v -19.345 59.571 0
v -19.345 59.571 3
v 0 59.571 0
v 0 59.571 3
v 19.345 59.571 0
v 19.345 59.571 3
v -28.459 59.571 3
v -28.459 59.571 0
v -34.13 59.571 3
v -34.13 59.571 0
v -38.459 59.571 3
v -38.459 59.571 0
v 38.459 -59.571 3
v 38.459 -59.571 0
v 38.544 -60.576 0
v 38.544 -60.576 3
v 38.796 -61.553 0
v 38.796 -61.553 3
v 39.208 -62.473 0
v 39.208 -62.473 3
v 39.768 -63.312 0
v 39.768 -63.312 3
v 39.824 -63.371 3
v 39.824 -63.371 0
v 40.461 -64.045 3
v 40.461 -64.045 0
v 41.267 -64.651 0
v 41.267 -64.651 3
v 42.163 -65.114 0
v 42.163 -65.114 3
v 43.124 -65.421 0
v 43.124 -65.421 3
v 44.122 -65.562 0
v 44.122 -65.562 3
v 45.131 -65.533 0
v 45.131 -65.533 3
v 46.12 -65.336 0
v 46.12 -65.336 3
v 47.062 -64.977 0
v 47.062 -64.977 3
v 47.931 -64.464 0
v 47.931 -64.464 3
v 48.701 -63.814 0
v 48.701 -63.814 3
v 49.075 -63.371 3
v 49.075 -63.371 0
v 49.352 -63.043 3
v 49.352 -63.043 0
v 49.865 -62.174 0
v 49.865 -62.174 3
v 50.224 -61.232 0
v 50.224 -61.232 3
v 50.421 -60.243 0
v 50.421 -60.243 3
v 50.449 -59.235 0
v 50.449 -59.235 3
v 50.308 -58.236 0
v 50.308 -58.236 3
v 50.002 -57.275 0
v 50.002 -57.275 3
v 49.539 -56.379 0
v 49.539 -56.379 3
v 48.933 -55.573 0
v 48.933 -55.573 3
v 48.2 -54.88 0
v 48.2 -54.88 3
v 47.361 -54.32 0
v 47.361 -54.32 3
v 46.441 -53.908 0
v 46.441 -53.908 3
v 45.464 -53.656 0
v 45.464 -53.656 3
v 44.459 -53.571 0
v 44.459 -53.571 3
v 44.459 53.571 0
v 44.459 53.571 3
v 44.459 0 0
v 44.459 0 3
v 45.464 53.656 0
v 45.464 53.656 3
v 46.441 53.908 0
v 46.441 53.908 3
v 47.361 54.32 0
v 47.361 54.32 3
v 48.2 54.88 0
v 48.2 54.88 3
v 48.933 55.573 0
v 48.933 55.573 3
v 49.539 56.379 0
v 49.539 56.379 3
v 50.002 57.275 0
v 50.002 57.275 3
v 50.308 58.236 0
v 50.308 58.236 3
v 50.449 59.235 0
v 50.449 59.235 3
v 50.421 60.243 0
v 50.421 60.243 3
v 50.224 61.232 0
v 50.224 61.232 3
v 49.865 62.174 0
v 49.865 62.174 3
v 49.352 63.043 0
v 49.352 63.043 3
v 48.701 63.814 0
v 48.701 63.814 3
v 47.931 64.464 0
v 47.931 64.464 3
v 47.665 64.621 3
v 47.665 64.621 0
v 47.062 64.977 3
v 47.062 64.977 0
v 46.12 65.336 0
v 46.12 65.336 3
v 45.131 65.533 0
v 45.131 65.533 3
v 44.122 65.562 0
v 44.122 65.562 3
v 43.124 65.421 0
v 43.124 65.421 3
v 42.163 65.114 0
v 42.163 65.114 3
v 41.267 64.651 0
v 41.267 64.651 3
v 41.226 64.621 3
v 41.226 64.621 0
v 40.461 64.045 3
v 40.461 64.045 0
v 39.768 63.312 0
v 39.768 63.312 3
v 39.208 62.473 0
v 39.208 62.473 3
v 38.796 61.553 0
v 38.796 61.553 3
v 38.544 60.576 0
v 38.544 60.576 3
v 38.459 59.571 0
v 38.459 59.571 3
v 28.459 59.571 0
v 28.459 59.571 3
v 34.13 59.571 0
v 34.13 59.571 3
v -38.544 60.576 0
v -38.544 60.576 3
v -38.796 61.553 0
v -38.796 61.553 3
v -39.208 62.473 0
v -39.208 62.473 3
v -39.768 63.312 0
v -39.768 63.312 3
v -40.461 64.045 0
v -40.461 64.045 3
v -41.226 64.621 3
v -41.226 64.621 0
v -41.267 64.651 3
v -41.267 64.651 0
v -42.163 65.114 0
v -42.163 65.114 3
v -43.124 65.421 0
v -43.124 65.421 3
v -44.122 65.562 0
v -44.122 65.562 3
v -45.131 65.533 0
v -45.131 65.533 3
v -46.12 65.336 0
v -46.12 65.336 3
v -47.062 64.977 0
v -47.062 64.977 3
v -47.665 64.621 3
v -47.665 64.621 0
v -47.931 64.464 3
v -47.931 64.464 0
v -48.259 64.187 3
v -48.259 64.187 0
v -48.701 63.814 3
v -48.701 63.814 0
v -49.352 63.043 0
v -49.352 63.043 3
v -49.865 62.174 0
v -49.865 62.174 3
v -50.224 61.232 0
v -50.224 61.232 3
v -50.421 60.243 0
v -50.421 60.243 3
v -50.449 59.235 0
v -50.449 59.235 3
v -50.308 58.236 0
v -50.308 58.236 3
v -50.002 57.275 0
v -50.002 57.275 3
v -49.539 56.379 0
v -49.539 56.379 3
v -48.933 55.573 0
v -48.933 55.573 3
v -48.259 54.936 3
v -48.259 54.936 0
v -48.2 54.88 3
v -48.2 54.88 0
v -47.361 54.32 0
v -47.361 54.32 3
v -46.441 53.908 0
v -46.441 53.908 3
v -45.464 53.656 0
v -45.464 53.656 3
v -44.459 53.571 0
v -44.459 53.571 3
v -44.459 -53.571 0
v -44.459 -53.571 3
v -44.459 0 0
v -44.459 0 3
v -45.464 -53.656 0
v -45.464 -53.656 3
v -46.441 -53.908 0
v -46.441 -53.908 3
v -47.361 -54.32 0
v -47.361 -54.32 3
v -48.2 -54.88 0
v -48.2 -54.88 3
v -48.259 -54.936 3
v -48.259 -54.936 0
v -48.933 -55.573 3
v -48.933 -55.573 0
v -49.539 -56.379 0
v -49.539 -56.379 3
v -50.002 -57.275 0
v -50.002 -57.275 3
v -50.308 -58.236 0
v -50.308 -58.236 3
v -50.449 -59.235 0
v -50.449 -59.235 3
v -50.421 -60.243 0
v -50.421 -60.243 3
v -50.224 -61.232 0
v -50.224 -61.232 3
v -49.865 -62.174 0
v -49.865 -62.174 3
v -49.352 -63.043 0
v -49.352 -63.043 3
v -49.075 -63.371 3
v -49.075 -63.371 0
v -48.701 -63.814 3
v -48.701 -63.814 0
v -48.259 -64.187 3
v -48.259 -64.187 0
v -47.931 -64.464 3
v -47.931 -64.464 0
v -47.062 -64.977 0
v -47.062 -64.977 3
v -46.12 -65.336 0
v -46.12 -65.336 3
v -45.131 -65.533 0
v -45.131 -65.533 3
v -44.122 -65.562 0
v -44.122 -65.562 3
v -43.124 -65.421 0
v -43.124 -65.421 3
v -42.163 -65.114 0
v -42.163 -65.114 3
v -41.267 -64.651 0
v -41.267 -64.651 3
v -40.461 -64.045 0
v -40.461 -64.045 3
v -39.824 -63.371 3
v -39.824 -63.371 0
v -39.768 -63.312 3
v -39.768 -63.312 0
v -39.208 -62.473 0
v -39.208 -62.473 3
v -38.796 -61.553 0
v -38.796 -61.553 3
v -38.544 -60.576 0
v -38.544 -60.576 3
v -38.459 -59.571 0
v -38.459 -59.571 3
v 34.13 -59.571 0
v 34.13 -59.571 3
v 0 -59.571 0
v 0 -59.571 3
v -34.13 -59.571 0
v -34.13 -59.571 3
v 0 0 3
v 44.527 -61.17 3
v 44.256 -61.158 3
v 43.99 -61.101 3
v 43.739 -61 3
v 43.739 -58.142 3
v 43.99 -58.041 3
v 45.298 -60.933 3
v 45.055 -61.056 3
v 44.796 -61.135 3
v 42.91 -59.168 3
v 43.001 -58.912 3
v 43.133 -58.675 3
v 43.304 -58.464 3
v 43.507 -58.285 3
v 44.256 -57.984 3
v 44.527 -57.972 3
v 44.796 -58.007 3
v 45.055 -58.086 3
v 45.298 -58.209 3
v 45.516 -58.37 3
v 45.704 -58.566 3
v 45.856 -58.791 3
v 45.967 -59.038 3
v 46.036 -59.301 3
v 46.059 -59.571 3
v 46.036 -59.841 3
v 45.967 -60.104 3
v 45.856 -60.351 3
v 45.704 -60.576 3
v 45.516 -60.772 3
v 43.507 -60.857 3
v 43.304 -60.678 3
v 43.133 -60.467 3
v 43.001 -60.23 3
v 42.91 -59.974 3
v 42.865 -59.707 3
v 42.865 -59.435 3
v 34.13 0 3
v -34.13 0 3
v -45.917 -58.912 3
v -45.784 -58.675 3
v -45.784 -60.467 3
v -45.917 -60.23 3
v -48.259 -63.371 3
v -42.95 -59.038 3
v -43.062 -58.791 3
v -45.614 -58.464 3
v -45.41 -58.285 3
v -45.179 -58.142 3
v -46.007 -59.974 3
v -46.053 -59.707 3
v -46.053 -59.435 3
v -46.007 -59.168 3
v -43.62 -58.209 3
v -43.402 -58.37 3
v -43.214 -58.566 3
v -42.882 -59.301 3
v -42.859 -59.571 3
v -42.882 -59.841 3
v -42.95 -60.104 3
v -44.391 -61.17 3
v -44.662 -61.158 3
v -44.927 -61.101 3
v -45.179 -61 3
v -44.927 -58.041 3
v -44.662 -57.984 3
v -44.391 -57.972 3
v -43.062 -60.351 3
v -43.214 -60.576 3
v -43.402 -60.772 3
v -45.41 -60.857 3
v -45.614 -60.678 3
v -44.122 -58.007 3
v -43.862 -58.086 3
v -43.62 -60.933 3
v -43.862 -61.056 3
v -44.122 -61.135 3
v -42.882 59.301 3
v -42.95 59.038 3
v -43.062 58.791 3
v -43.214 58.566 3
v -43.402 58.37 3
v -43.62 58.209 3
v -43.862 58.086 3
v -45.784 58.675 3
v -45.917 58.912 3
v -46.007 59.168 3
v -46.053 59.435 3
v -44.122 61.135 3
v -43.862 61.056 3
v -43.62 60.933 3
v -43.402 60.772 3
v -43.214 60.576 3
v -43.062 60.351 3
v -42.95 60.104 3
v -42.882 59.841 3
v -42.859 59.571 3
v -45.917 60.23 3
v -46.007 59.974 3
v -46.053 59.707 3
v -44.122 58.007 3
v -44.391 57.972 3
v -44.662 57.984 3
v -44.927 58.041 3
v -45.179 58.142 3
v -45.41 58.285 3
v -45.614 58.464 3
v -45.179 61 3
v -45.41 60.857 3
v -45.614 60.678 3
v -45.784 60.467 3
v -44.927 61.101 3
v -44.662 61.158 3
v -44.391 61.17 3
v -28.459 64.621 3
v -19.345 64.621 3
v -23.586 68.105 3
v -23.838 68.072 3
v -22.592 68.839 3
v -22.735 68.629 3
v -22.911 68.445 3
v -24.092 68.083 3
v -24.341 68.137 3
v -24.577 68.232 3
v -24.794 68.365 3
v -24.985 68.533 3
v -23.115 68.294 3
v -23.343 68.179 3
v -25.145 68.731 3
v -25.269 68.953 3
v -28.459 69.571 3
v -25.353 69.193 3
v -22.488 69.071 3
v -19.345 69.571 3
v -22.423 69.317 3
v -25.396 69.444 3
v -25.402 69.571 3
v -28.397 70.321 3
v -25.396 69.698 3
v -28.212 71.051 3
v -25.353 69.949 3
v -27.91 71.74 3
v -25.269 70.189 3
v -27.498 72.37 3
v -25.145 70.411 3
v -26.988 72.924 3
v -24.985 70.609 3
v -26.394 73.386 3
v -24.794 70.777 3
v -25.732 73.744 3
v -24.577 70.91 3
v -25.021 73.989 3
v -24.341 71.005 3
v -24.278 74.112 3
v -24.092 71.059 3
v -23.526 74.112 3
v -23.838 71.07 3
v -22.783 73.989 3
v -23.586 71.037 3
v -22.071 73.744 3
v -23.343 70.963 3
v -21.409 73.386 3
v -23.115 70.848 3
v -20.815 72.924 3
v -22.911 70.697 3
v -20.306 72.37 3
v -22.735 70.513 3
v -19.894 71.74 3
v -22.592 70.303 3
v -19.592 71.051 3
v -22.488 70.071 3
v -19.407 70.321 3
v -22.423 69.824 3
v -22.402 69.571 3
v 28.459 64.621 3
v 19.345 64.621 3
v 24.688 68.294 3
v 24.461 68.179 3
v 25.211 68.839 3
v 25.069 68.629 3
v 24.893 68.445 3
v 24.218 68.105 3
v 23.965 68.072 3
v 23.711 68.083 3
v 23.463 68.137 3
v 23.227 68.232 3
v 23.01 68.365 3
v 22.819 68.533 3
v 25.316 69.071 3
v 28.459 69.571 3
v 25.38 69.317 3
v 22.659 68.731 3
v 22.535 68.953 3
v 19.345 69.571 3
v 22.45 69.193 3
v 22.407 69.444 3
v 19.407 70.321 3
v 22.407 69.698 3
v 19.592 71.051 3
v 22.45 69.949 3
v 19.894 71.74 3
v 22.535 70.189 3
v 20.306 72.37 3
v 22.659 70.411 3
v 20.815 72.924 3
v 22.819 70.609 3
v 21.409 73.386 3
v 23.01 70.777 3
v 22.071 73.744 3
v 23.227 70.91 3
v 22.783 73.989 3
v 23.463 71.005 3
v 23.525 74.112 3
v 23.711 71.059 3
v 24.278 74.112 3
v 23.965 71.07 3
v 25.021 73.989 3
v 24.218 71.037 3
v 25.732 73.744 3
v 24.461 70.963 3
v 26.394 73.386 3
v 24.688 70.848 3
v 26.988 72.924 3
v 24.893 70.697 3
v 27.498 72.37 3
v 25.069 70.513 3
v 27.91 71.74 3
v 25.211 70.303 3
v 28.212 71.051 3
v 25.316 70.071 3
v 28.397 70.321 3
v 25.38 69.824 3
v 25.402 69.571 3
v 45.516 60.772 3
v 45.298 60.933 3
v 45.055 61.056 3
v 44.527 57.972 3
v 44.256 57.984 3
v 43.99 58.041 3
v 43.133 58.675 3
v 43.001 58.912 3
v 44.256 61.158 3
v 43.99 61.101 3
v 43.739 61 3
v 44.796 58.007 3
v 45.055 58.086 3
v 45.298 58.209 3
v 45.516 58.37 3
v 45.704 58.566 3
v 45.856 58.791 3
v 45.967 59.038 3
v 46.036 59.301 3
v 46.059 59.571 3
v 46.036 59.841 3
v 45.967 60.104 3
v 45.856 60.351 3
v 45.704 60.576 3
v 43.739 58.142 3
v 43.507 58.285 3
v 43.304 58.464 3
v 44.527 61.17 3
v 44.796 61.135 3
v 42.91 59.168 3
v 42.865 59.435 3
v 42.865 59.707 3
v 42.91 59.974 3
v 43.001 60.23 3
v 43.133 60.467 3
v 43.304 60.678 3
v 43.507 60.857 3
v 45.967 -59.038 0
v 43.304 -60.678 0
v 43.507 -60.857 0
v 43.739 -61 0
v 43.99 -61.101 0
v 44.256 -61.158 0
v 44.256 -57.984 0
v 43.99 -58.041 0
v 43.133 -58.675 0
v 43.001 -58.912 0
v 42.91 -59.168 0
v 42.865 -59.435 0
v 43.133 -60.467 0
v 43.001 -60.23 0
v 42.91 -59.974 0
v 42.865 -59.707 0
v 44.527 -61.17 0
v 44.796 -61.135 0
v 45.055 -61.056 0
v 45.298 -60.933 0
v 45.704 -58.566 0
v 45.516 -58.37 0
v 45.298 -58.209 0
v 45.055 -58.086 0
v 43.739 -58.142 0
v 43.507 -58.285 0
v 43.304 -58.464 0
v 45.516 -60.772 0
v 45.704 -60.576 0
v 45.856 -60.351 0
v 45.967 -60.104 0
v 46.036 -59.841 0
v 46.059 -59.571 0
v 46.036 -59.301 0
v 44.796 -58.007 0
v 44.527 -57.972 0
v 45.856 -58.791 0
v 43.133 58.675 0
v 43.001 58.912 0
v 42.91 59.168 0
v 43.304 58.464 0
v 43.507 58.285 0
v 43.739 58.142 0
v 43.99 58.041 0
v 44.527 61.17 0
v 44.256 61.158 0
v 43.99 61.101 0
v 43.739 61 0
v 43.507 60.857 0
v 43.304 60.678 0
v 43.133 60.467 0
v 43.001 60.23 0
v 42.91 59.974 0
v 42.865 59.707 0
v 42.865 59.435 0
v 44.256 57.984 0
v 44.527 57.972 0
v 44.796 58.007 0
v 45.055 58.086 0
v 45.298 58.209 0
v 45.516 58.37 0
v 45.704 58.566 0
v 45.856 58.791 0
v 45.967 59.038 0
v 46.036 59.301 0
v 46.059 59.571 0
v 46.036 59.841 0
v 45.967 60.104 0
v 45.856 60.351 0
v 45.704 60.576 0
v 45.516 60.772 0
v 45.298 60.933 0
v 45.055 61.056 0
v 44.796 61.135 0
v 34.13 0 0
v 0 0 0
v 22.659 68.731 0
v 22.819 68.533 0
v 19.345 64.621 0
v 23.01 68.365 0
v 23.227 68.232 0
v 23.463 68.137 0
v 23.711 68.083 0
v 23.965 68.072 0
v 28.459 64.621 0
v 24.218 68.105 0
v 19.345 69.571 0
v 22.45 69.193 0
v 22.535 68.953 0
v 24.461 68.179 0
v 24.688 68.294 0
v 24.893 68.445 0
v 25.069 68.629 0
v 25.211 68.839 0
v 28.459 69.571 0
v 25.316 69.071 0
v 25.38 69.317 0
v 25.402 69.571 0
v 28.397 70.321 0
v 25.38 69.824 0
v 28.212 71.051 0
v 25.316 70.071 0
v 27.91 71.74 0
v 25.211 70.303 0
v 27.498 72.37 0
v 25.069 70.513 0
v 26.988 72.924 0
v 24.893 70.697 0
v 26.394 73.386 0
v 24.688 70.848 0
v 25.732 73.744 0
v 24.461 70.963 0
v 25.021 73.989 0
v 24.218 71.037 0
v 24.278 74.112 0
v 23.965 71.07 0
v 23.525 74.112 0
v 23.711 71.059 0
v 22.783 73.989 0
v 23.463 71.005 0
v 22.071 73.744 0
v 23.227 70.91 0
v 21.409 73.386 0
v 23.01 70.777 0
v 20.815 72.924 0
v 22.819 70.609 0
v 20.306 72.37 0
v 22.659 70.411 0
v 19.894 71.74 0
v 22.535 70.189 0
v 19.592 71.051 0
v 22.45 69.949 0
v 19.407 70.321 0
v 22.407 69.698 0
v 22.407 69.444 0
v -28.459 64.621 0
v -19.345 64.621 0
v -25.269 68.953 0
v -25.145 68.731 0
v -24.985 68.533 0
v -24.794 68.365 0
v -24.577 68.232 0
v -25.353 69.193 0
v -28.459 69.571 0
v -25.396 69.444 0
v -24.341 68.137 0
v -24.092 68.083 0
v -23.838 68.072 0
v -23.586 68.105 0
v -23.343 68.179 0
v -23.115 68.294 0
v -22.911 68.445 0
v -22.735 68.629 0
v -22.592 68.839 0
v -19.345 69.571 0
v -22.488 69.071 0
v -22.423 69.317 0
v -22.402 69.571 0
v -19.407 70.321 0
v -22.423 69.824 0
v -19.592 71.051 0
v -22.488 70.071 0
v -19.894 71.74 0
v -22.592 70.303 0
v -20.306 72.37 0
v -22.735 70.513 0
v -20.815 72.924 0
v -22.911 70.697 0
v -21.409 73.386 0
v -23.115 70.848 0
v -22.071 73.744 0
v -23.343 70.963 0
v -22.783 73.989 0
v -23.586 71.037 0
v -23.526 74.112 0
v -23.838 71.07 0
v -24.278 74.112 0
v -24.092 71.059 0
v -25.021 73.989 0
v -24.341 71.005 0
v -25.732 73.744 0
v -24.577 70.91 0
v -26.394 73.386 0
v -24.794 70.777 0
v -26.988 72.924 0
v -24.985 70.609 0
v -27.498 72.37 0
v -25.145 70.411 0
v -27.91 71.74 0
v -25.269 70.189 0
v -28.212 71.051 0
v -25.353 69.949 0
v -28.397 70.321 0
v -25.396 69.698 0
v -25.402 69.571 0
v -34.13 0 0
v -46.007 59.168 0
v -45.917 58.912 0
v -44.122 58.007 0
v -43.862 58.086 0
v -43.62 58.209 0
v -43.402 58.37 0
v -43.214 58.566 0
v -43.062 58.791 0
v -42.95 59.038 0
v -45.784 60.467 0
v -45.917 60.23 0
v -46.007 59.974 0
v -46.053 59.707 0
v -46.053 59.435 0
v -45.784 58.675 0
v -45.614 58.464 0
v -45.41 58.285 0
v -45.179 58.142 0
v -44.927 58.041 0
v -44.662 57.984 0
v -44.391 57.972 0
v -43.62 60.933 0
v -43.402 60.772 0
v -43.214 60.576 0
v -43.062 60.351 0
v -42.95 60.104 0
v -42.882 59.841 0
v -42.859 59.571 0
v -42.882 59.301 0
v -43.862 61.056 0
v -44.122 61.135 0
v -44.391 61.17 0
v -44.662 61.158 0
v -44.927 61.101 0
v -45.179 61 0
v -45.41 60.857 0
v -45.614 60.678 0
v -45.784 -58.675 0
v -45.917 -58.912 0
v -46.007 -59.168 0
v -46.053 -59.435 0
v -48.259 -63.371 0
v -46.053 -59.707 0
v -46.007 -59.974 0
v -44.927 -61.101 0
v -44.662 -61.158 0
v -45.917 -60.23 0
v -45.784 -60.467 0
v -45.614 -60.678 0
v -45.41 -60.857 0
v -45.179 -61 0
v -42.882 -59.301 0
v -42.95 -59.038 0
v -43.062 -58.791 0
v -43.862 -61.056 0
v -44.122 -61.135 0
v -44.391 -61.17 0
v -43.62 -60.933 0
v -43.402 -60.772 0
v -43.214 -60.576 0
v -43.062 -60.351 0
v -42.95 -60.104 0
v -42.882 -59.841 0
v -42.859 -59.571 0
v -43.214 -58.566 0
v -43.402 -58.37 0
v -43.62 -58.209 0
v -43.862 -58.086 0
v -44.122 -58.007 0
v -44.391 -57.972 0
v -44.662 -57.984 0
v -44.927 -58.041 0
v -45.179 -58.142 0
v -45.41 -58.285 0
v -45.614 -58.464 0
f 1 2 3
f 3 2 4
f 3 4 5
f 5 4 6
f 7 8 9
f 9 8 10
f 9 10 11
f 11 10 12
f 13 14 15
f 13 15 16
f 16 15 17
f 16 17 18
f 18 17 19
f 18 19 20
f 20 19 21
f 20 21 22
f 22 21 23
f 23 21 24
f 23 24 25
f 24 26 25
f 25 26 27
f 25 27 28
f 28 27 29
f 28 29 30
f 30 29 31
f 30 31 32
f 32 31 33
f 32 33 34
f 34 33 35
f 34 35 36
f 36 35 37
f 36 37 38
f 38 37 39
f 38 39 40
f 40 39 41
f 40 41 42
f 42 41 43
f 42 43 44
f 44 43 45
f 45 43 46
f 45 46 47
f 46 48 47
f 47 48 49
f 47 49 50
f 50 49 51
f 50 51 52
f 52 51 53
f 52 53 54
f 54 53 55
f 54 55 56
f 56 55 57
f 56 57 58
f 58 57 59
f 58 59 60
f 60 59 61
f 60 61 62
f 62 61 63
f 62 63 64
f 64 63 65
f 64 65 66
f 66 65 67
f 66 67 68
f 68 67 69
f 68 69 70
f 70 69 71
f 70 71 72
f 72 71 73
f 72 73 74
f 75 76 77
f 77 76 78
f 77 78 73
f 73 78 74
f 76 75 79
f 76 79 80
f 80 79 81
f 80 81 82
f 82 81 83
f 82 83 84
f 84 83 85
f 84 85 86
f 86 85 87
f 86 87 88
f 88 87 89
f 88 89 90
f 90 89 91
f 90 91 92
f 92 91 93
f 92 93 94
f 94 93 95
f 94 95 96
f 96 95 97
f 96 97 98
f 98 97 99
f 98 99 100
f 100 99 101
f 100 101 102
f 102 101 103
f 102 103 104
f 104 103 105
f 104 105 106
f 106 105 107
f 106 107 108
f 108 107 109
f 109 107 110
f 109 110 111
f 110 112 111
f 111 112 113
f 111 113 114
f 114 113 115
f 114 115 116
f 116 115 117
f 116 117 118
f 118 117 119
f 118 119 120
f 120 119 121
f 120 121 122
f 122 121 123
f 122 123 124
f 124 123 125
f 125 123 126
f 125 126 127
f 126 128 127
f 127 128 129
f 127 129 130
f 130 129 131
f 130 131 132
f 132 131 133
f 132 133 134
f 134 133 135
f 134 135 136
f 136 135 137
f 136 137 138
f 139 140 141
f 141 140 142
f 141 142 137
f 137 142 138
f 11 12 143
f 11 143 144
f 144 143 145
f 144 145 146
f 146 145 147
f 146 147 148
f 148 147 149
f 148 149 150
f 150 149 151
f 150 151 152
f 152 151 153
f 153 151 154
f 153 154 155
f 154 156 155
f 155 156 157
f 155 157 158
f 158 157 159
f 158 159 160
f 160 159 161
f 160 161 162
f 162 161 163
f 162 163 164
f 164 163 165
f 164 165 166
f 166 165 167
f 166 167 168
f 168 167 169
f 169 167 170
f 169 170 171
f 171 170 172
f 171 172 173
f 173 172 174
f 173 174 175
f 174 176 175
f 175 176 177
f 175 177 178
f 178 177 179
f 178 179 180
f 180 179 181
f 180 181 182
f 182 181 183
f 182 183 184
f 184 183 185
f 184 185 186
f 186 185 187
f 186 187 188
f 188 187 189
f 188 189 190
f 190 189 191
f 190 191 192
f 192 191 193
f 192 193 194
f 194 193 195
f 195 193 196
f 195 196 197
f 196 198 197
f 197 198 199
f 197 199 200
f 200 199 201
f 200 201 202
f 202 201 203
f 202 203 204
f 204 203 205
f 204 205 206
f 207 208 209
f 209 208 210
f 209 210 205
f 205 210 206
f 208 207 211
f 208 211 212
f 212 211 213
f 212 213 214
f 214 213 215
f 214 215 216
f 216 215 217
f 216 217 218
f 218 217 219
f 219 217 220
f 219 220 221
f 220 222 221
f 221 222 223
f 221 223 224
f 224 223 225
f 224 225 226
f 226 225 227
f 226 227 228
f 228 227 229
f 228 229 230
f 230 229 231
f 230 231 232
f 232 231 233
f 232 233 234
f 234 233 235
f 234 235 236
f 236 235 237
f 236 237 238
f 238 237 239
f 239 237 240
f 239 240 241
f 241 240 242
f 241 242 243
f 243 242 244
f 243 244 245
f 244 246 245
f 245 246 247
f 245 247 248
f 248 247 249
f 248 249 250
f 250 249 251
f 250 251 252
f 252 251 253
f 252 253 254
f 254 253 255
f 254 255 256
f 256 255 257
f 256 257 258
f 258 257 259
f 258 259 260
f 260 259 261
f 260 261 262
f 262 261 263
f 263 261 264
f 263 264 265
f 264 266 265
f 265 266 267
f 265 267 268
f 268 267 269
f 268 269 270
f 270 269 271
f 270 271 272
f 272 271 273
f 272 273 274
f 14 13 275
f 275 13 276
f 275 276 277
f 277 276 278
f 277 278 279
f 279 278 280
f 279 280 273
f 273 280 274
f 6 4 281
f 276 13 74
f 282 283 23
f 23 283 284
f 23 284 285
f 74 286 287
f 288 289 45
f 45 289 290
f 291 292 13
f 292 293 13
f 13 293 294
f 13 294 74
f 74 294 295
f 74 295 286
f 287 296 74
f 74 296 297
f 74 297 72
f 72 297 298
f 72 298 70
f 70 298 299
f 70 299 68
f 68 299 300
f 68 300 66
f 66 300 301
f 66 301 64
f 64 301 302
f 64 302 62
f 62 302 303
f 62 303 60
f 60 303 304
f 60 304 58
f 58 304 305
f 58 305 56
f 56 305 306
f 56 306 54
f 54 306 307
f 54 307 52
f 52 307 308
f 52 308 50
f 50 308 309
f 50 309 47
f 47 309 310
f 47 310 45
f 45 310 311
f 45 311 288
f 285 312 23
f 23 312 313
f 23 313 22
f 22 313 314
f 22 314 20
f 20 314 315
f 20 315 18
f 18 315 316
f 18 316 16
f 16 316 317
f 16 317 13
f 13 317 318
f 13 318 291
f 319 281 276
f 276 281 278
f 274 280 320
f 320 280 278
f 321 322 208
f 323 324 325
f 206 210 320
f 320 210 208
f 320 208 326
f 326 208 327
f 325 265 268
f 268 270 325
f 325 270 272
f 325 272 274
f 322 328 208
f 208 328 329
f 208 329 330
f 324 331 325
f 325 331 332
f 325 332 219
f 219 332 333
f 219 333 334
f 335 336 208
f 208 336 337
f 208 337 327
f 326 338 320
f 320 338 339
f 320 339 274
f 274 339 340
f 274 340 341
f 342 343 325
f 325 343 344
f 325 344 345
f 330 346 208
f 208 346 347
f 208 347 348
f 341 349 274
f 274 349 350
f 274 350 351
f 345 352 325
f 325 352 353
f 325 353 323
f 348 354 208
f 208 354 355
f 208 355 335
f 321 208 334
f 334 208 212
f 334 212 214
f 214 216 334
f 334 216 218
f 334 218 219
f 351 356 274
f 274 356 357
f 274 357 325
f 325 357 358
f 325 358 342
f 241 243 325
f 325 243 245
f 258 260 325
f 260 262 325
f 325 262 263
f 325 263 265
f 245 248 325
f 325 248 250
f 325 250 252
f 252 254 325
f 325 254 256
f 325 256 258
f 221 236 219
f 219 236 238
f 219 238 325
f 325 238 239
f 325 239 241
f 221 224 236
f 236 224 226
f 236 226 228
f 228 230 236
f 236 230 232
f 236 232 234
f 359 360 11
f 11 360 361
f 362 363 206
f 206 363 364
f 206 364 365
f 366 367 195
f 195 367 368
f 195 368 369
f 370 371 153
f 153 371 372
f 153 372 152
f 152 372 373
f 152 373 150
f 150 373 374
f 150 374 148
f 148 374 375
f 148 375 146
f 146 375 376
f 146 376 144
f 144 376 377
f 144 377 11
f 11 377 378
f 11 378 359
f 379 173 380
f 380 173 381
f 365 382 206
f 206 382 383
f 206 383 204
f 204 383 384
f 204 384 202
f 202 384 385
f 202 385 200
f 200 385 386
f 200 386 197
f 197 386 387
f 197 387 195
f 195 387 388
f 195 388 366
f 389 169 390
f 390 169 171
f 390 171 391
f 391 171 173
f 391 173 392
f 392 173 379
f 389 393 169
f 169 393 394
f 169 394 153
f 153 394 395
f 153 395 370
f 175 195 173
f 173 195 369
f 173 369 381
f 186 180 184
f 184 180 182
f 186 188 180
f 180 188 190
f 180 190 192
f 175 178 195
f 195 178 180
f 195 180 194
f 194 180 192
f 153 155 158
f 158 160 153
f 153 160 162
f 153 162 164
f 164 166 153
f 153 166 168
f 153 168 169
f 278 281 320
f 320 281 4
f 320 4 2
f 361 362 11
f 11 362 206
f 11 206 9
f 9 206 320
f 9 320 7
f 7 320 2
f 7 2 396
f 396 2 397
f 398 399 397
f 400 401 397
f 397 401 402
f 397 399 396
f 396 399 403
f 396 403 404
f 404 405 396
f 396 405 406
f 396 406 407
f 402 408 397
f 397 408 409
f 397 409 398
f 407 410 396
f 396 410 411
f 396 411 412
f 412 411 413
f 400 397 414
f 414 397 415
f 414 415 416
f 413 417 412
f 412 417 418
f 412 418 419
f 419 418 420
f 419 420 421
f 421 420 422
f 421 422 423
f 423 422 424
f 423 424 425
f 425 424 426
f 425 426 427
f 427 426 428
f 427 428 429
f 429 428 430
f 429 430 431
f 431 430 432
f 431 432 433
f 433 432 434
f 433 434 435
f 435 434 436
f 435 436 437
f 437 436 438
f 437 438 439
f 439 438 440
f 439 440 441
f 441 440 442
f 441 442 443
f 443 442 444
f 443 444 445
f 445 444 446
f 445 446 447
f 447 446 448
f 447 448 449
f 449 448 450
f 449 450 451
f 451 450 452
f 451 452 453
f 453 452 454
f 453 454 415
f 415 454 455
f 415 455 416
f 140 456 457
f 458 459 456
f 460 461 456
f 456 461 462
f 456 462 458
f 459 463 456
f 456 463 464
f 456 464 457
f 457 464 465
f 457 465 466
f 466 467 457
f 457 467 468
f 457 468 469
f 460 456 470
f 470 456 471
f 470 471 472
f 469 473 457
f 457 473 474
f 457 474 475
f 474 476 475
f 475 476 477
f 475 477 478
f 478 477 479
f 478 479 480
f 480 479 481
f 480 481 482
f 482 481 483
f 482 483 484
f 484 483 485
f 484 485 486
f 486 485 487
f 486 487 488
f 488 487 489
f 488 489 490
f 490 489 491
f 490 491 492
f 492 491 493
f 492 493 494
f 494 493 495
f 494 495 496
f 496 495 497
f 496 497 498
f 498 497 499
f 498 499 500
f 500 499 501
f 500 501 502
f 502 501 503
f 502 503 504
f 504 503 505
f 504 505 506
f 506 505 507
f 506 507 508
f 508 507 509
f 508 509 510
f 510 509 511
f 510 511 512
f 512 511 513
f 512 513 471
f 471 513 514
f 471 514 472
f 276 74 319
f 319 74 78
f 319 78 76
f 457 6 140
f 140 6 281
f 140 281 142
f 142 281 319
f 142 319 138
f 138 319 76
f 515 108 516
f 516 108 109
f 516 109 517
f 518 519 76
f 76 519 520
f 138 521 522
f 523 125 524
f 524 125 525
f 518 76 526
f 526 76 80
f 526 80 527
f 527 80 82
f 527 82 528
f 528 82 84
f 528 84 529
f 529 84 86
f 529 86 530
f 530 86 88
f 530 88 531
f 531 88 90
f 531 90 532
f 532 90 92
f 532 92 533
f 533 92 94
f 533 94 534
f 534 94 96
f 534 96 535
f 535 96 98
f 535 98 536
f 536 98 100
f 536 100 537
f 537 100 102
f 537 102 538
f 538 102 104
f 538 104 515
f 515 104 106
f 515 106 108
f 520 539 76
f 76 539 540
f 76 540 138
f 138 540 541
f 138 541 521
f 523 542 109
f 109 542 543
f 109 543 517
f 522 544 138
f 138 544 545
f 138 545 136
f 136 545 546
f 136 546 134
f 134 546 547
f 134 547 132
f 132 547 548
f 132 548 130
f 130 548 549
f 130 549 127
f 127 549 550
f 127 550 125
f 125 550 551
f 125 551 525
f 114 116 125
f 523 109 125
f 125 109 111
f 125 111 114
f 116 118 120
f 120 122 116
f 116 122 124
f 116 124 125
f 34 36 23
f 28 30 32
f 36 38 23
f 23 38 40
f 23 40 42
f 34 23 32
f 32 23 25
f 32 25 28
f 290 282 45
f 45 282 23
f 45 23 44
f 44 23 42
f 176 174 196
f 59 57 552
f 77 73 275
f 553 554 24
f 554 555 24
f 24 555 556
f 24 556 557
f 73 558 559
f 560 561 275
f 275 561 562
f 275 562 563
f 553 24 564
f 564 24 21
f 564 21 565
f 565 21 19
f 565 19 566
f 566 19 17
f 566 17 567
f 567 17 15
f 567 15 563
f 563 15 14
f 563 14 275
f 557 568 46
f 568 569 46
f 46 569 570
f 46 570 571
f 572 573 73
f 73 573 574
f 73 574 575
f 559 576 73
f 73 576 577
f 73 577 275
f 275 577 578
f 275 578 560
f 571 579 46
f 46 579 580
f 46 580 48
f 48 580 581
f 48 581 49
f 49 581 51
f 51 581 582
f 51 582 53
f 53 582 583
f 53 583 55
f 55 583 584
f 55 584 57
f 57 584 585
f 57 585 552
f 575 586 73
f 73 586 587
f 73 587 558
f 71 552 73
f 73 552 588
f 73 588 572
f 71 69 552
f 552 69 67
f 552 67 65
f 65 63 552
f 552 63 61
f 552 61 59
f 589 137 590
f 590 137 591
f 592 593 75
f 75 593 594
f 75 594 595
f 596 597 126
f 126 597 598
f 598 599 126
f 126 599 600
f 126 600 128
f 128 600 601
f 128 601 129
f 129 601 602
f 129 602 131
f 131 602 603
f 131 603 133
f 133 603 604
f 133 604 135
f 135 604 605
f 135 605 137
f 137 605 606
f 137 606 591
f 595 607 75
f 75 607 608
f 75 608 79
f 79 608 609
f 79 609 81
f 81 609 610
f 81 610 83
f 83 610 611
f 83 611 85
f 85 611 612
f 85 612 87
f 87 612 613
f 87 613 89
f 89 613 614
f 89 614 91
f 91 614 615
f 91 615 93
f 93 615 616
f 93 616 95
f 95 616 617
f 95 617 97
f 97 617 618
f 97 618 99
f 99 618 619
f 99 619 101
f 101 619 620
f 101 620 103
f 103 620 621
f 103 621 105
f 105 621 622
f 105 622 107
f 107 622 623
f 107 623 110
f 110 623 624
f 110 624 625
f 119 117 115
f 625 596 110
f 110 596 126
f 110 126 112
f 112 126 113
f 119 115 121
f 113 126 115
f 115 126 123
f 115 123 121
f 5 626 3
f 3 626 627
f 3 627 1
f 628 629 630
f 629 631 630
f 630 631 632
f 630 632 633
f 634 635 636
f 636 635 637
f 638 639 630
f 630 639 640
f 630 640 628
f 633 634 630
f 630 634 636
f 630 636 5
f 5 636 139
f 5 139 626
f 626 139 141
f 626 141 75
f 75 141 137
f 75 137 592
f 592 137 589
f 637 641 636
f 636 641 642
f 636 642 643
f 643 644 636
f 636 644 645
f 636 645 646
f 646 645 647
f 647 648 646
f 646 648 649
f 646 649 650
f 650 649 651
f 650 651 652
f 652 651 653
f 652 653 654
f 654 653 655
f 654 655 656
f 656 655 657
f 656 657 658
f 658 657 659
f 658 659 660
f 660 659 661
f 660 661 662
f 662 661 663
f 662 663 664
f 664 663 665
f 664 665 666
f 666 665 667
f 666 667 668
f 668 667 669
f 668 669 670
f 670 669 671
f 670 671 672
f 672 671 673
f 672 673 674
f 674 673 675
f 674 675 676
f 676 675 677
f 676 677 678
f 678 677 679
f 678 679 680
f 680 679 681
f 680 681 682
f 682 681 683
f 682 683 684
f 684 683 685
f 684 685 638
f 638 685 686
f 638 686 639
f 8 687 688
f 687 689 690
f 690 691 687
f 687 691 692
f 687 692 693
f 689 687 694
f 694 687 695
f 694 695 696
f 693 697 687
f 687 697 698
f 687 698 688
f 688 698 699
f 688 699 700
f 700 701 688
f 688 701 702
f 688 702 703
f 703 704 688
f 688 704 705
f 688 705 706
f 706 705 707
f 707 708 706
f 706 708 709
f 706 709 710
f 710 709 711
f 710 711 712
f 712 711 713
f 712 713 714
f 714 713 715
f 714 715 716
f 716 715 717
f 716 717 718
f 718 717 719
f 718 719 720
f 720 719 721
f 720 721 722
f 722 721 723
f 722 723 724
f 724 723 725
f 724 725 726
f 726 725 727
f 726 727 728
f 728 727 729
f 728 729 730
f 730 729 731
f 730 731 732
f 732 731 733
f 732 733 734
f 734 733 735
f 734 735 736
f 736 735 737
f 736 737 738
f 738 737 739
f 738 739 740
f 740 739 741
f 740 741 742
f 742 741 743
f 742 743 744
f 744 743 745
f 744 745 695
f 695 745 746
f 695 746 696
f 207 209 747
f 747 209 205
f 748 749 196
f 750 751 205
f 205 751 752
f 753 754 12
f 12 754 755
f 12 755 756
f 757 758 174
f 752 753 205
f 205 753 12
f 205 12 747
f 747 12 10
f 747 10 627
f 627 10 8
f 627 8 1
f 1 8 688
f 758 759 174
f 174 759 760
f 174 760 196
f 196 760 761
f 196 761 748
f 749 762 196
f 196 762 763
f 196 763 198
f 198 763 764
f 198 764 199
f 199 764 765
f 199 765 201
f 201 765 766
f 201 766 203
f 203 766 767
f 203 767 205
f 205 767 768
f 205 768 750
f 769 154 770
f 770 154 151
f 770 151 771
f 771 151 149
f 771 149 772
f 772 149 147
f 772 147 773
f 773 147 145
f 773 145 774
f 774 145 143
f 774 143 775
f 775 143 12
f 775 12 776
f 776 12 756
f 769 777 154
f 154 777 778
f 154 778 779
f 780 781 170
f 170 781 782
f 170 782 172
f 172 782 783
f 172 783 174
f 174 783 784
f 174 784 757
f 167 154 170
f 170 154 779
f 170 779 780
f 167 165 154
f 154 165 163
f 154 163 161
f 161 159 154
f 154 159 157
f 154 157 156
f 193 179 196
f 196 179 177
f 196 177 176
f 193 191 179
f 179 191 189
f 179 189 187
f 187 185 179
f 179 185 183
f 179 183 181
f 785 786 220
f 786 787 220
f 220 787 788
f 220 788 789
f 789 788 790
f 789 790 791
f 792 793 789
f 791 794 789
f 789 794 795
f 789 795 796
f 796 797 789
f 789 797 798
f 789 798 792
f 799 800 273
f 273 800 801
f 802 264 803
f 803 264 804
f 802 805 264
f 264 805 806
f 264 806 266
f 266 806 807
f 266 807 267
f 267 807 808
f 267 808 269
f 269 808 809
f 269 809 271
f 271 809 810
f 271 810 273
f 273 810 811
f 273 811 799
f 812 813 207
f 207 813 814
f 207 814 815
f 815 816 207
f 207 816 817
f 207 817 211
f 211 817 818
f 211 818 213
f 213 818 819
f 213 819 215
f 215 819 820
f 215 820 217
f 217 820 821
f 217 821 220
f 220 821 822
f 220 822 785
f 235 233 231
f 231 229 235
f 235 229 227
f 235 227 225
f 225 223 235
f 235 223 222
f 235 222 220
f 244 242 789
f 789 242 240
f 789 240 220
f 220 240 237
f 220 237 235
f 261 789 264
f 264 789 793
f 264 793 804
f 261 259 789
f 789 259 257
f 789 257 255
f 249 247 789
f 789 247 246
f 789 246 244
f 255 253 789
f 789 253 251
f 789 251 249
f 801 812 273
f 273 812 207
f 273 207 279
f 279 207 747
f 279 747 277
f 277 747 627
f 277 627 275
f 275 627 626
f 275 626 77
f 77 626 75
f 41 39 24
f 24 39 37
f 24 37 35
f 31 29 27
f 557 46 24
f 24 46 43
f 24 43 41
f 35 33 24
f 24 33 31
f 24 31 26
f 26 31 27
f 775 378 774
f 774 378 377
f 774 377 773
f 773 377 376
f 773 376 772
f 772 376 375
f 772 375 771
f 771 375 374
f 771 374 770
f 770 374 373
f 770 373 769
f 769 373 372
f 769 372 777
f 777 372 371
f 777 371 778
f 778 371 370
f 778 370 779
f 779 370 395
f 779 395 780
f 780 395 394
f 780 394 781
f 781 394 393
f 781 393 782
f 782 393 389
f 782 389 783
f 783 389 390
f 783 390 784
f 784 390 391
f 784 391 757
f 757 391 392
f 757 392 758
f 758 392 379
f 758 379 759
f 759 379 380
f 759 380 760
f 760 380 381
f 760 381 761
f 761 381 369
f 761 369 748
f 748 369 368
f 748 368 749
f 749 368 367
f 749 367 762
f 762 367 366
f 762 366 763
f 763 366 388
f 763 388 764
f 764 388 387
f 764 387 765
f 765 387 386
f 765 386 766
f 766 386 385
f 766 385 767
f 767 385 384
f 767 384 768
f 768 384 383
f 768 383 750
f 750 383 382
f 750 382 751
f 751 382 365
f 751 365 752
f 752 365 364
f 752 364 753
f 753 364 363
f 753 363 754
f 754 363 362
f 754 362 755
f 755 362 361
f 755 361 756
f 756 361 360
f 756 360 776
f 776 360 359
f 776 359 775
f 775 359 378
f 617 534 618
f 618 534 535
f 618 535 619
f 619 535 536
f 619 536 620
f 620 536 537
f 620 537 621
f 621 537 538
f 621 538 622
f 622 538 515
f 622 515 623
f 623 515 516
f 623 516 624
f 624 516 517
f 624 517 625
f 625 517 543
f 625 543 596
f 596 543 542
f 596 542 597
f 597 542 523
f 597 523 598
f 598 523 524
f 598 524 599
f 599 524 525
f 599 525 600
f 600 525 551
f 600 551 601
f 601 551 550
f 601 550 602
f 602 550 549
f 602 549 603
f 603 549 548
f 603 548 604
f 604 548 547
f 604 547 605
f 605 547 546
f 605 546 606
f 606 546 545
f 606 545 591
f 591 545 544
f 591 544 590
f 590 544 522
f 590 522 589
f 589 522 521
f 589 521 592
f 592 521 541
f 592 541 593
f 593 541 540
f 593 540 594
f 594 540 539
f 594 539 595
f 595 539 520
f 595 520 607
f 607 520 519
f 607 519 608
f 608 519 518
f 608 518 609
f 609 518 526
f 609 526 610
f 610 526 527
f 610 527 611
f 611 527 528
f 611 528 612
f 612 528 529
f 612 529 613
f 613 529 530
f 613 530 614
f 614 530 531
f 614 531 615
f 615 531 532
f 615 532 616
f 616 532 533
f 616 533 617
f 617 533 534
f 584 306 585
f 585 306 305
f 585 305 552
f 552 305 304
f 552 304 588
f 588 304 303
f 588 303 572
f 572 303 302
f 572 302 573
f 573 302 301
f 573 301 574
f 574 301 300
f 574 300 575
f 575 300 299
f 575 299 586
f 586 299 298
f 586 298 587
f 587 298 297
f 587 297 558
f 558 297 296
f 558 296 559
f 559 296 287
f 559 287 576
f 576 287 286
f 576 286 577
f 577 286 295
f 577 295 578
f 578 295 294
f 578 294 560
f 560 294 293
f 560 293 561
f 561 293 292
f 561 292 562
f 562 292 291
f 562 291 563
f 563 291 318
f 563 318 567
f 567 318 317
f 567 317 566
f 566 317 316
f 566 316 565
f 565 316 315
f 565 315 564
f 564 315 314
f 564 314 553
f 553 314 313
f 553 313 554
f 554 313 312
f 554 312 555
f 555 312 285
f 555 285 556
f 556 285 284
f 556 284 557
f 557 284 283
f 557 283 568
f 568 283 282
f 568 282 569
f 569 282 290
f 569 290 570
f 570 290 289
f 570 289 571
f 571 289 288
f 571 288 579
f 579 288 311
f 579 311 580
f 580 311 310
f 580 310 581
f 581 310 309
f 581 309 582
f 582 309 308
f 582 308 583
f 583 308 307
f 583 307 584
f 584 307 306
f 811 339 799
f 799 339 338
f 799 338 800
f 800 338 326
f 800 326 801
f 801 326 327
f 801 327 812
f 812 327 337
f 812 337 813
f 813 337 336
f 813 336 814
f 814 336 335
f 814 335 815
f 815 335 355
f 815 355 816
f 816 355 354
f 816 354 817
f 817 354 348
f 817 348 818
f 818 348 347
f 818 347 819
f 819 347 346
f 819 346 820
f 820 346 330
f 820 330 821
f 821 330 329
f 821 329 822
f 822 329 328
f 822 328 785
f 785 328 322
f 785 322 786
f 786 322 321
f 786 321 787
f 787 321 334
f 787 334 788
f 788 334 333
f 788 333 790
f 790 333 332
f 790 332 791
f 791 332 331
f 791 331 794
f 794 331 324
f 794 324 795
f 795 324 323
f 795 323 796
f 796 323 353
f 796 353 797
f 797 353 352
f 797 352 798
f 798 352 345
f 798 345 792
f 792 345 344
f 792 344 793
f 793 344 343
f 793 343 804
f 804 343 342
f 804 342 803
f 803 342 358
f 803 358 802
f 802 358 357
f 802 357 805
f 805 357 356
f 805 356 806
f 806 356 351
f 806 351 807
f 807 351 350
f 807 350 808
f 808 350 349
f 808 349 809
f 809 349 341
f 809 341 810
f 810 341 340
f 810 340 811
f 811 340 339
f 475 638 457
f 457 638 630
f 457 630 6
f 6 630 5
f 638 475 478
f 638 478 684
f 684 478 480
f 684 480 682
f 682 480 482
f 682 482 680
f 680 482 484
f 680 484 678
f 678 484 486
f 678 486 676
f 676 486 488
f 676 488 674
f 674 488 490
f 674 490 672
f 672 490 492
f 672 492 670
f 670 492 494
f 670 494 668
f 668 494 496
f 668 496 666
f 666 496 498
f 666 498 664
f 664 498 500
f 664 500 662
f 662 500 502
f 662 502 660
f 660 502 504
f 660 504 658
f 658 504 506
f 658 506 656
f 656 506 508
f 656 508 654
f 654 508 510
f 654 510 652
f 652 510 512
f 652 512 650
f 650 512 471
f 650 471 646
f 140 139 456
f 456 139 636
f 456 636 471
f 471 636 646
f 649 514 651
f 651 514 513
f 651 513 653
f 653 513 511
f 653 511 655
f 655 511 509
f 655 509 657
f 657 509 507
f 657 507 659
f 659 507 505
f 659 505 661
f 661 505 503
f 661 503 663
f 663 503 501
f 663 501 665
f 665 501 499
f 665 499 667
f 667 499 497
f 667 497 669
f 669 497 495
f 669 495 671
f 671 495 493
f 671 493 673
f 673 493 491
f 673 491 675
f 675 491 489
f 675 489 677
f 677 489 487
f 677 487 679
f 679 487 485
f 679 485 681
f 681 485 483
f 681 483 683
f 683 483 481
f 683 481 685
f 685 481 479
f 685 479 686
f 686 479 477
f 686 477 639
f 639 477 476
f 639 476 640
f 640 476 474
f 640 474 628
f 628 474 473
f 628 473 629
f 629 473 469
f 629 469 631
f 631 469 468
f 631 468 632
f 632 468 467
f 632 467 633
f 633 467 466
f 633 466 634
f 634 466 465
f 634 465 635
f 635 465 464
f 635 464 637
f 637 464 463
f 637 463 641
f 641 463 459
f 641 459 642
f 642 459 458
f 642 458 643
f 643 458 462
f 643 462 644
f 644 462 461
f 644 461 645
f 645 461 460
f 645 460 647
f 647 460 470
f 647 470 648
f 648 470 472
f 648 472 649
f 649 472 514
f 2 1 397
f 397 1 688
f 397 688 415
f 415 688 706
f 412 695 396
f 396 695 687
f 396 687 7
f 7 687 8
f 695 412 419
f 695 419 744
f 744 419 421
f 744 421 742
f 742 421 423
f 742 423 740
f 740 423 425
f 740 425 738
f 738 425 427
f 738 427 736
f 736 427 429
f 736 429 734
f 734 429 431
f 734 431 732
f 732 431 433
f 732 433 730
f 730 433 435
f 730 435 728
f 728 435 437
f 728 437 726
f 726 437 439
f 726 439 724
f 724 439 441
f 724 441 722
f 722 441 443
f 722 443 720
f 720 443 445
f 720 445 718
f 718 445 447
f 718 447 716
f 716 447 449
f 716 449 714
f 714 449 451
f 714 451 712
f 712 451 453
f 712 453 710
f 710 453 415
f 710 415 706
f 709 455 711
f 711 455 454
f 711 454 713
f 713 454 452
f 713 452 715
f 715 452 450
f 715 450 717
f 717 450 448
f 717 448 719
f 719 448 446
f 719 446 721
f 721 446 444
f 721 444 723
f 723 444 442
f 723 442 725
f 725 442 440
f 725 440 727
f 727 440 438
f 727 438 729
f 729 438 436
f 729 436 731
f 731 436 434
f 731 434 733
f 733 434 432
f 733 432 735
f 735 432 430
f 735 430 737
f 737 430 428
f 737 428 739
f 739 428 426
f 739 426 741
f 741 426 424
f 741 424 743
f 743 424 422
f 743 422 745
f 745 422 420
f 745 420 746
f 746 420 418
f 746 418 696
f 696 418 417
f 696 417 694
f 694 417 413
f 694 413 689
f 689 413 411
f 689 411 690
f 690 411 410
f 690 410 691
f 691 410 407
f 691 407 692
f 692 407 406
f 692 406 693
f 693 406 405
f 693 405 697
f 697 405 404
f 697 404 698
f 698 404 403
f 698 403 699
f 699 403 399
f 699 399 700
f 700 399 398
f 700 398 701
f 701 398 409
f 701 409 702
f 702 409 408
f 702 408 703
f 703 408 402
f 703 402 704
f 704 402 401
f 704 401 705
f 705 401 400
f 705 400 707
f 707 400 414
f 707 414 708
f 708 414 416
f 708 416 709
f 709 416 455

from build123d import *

# Parameters (mm, degrees)
BOSS_EXTRUDE1_DEPTH = 3
SKETCH2_R           = 1.6
CUT_EXTRUDE1_DEPTH  = 10
SKETCH3_R           = 1.5
BOSS_EXTRUDE4_DEPTH = 3


with BuildPart() as part:
    # Sketch1 → Boss-Extrude1 (new body)
    with BuildSketch(Plane.XY):
        with BuildLine():
            Line((38.458853732, -59.570964101), (-38.458853732, -59.570964101))
            ThreePointArc((-38.458853732, -59.570964101), (-48.701494419, -63.813604788), (-44.458853732, -53.570964101))
            Line((-44.458853732, -53.570964101), (-44.458853732, 53.570964101))
            ThreePointArc((-44.458853732, 53.570964101), (-48.701494419, 63.813604788), (-38.458853732, 59.570964101))
            Line((-38.458853732, 59.570964101), (38.458853732, 59.570964101))
            ThreePointArc((38.458853732, 59.570964101), (48.701494419, 63.813604788), (44.458853732, 53.570964101))
            Line((44.458853732, 53.570964101), (44.458853732, -53.570964101))
            ThreePointArc((44.458853732, -53.570964101), (48.701494419, -63.813604788), (38.458853732, -59.570964101))
        make_face()
    extrude(amount=BOSS_EXTRUDE1_DEPTH)

    # Sketch2 → Cut-Extrude1 (cut)
    with BuildSketch(Plane.XY.offset(3)):
        with Locations((-44.458853732, 59.570964101)):
            Circle(SKETCH2_R)
        with Locations((44.458853732, 59.570964101)):
            Circle(SKETCH2_R)
        with Locations((44.458853732, -59.570964101)):
            Circle(SKETCH2_R)
        with Locations((-44.458853732, -59.570964101)):
            Circle(SKETCH2_R)
    extrude(amount=-CUT_EXTRUDE1_DEPTH, mode=Mode.SUBTRACT)

    # Sketch3 → Boss-Extrude4 (add)
    with BuildSketch(Plane.XY.offset(3)):
        with BuildLine():
            Line((19.344784152, 59.570964101), (28.458853732, 59.570964101))
            Line((28.458853732, 59.570964101), (28.458853732, 69.570964101))
            ThreePointArc((28.458853732, 69.570964101), (23.901818942, 74.127998891), (19.344784152, 69.570964101))
            Line((19.344784152, 69.570964101), (19.344784152, 59.570964101))
        make_face()
        with Locations((23.901818942, 69.570964101)):
            Circle(SKETCH3_R, mode=Mode.SUBTRACT)
        with BuildLine():
            Line((-19.344784152, 59.570964101), (-28.458853732, 59.570964101))
            Line((-28.458853732, 59.570964101), (-28.458853732, 69.570964101))
            ThreePointArc((-28.458853732, 69.570964101), (-23.901818942, 74.127998891), (-19.344784152, 69.570964101))
            Line((-19.344784152, 69.570964101), (-19.344784152, 59.570964101))
        make_face()
        with Locations((-23.901818942, 69.570964101)):
            Circle(SKETCH3_R, mode=Mode.SUBTRACT)
    extrude(amount=-BOSS_EXTRUDE4_DEPTH)


solid = part.part
